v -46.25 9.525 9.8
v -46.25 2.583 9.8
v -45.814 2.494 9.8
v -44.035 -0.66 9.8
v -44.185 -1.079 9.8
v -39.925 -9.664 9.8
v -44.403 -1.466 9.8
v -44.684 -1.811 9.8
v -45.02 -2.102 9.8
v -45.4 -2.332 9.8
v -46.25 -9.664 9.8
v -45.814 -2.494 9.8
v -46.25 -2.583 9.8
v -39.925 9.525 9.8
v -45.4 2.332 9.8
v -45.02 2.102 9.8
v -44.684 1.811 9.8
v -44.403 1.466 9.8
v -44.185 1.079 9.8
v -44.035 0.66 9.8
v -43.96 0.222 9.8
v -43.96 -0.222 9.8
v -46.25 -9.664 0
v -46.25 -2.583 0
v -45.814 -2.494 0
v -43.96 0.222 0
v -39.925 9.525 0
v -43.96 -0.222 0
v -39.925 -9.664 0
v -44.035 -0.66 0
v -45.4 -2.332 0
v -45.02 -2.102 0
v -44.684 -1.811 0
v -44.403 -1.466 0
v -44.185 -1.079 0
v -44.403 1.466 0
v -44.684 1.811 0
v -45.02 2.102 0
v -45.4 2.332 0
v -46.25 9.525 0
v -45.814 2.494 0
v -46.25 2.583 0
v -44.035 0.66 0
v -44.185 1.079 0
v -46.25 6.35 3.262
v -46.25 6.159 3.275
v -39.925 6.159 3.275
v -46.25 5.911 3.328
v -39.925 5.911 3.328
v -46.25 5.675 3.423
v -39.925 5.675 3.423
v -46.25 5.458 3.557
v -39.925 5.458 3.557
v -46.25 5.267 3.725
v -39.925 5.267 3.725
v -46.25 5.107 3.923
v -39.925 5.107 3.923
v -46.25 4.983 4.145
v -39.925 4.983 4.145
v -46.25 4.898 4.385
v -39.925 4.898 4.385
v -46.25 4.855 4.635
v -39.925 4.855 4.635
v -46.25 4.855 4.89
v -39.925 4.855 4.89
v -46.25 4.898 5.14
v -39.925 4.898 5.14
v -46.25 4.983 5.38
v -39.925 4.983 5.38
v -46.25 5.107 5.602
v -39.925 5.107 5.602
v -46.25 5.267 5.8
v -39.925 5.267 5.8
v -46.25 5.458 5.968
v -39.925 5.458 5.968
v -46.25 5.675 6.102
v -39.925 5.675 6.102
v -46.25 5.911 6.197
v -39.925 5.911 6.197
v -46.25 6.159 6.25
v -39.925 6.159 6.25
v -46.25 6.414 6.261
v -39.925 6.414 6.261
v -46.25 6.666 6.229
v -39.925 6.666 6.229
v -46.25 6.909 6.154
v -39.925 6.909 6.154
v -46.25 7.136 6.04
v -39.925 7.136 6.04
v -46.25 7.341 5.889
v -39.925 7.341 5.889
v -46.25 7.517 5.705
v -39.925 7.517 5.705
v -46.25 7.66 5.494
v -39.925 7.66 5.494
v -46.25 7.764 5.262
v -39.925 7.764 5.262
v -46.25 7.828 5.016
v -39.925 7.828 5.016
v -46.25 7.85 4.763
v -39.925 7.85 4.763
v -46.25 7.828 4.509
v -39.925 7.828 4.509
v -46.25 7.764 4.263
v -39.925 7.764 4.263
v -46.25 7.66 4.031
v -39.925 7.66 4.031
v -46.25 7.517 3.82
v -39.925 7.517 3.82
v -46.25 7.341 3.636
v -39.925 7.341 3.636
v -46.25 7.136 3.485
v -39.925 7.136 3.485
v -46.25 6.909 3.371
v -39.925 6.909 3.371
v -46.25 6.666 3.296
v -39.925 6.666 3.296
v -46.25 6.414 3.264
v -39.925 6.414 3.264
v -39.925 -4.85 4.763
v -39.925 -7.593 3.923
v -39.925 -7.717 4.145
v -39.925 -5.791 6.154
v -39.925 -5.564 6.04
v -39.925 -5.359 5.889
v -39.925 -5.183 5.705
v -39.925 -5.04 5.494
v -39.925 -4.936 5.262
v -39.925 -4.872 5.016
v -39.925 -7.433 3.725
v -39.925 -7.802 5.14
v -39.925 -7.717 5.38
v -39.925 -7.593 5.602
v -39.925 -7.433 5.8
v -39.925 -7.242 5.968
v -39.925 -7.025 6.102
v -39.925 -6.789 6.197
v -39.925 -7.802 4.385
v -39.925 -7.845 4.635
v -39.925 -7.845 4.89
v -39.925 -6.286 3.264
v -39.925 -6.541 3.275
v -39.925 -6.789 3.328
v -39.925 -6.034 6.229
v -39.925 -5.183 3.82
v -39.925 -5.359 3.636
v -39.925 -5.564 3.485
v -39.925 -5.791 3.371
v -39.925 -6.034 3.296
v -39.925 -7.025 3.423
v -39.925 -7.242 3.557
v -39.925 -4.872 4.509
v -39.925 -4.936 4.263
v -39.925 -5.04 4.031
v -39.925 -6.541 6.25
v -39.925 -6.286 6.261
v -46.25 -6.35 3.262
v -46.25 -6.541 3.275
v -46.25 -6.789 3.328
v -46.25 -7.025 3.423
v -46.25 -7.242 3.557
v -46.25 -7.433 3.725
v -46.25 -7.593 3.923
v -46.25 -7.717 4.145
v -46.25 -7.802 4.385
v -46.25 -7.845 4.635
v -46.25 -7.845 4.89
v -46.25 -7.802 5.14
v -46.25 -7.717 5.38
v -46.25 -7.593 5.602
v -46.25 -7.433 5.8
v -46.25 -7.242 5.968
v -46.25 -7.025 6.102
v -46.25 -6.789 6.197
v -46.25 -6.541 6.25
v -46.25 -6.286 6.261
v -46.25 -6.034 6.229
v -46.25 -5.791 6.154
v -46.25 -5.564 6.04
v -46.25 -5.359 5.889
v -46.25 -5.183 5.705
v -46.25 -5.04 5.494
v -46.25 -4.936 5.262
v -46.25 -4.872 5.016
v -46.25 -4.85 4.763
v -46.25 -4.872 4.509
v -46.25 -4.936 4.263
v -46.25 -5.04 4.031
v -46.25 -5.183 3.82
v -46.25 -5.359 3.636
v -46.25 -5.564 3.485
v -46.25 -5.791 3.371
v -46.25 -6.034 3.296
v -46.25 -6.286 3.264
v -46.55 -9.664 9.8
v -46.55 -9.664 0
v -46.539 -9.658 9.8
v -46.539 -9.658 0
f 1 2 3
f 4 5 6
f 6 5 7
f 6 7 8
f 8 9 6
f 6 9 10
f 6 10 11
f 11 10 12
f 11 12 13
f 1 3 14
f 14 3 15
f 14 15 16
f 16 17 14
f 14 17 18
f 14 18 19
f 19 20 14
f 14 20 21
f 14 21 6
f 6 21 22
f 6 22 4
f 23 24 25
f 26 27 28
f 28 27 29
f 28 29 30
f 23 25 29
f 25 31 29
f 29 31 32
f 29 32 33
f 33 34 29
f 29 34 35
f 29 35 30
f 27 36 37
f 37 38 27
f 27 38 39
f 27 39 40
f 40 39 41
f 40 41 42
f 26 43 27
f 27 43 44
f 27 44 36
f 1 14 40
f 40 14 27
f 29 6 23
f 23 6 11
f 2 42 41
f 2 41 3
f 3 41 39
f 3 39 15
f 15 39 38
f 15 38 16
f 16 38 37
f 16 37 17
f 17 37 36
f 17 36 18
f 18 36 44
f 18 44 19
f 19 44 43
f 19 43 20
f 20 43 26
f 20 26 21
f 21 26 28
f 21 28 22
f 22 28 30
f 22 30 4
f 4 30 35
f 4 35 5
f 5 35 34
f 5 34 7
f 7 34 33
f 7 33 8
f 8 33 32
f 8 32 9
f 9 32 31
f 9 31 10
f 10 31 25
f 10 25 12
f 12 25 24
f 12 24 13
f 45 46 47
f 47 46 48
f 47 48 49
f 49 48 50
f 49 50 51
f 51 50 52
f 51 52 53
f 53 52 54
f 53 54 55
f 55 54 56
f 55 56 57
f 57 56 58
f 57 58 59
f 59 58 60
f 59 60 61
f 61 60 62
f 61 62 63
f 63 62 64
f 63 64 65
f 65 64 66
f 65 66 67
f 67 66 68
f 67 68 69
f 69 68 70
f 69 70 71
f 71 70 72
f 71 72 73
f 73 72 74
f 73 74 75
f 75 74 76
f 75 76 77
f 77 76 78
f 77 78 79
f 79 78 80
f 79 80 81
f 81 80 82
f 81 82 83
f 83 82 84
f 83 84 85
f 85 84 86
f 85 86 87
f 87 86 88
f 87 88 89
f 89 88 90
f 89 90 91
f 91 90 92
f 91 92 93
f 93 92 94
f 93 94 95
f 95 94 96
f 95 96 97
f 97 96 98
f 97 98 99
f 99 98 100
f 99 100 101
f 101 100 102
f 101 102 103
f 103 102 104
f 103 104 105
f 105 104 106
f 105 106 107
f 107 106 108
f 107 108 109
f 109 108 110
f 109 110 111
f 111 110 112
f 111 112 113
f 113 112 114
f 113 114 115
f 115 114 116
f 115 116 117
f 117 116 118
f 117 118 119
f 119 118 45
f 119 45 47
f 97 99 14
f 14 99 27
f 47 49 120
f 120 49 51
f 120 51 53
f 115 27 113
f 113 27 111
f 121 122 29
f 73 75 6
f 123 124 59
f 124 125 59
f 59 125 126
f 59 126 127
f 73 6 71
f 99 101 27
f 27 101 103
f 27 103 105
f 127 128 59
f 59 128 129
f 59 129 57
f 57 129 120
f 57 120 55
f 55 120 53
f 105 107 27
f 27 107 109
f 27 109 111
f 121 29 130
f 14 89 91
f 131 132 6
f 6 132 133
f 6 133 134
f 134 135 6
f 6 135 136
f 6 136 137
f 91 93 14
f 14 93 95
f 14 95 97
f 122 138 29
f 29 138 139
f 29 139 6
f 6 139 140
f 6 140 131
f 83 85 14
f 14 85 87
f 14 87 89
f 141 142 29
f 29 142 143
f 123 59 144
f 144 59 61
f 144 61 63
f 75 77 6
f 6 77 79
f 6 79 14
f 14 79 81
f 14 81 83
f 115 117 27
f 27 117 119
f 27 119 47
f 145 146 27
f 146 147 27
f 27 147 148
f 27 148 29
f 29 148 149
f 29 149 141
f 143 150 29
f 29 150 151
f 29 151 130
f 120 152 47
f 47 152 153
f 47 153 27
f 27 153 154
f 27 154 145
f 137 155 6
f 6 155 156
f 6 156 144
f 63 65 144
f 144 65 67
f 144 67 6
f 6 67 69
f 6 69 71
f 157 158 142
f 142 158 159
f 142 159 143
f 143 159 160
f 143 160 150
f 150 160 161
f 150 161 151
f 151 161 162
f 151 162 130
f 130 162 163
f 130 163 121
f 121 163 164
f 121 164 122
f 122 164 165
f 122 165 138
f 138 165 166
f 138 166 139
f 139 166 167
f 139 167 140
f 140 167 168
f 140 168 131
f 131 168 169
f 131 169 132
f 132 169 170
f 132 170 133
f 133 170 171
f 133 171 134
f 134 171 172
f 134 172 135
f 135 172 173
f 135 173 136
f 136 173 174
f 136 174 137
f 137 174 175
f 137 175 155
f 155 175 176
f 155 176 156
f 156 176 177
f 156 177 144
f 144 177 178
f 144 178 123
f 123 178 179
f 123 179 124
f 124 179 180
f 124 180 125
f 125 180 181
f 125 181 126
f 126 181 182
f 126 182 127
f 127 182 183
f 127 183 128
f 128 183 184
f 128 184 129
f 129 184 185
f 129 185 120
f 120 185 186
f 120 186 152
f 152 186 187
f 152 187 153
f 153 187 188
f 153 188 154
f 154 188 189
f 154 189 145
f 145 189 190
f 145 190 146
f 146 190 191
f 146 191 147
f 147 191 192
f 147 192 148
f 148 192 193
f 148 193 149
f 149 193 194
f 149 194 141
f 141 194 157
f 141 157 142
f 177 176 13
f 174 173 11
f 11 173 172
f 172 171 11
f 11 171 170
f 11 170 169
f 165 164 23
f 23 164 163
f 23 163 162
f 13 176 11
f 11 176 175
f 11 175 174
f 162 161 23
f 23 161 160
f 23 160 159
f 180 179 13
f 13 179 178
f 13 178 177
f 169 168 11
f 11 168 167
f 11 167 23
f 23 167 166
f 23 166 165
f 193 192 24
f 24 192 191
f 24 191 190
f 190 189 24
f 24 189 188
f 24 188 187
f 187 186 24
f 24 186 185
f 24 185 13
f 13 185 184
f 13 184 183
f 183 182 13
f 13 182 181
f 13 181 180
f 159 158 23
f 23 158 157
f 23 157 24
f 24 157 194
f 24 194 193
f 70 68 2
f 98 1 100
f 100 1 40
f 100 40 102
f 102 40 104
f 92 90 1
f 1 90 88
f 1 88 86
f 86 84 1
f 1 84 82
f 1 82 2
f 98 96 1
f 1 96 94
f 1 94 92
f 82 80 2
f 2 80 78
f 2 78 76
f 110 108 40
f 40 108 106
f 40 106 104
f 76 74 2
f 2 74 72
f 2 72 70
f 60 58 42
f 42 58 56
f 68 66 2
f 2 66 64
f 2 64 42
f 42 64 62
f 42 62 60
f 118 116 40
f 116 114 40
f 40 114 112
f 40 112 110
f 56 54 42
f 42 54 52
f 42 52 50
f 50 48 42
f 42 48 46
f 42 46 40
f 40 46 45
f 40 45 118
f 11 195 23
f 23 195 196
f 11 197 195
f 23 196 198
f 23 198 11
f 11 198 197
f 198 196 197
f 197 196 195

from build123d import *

# Parameters (mm, degrees)
EXTRUDE1_DEPTH = 9.8
SKETCH7_R      = 1.5
EXTRUDE3_DEPTH = 6.625
EXTRUDE4_DEPTH = 10.8


with BuildPart() as part:
    # Sketch5 → Extrude1 (new body)
    with BuildSketch(Plane.XY):
        with BuildLine():
            Line((-46.55, -2.6), (-46.55, -9.663597854))
            Line((-46.55, -9.663597854), (-39.925, -9.663597854))
            Line((-39.925, -9.663597854), (-39.925, 9.525))
            Line((-39.925, 9.525), (-46.55, 9.525))
            Line((-46.55, 9.525), (-46.55, 2.6))
            ThreePointArc((-46.55, 2.6), (-43.95, 0), (-46.55, -2.6))
        make_face()
    extrude(amount=EXTRUDE1_DEPTH)

    # Sketch7 → Extrude3 (cut)
    with BuildSketch(Plane(origin=(-39.925, 0, 0), x_dir=(0, 0, -1), z_dir=(1, 0, 0))):
        with Locations((-4.7625, 6.35)):
            Circle(SKETCH7_R)
        with Locations((-4.7625, -6.35)):
            Circle(SKETCH7_R)
    extrude(amount=-EXTRUDE3_DEPTH, mode=Mode.SUBTRACT)

    # Sketch9 → Extrude4 (cut, through all)
    with BuildSketch(Plane.XY.offset(9.8)):
        Polygon((-46.55, 9.525), (-46.55, -9.663597854), (-46.539158701, -9.658024196), (-46.25, -9.663597854), (-46.25, 9.525), align=None)
    extrude(amount=-EXTRUDE4_DEPTH, mode=Mode.SUBTRACT)


solid = part.part
